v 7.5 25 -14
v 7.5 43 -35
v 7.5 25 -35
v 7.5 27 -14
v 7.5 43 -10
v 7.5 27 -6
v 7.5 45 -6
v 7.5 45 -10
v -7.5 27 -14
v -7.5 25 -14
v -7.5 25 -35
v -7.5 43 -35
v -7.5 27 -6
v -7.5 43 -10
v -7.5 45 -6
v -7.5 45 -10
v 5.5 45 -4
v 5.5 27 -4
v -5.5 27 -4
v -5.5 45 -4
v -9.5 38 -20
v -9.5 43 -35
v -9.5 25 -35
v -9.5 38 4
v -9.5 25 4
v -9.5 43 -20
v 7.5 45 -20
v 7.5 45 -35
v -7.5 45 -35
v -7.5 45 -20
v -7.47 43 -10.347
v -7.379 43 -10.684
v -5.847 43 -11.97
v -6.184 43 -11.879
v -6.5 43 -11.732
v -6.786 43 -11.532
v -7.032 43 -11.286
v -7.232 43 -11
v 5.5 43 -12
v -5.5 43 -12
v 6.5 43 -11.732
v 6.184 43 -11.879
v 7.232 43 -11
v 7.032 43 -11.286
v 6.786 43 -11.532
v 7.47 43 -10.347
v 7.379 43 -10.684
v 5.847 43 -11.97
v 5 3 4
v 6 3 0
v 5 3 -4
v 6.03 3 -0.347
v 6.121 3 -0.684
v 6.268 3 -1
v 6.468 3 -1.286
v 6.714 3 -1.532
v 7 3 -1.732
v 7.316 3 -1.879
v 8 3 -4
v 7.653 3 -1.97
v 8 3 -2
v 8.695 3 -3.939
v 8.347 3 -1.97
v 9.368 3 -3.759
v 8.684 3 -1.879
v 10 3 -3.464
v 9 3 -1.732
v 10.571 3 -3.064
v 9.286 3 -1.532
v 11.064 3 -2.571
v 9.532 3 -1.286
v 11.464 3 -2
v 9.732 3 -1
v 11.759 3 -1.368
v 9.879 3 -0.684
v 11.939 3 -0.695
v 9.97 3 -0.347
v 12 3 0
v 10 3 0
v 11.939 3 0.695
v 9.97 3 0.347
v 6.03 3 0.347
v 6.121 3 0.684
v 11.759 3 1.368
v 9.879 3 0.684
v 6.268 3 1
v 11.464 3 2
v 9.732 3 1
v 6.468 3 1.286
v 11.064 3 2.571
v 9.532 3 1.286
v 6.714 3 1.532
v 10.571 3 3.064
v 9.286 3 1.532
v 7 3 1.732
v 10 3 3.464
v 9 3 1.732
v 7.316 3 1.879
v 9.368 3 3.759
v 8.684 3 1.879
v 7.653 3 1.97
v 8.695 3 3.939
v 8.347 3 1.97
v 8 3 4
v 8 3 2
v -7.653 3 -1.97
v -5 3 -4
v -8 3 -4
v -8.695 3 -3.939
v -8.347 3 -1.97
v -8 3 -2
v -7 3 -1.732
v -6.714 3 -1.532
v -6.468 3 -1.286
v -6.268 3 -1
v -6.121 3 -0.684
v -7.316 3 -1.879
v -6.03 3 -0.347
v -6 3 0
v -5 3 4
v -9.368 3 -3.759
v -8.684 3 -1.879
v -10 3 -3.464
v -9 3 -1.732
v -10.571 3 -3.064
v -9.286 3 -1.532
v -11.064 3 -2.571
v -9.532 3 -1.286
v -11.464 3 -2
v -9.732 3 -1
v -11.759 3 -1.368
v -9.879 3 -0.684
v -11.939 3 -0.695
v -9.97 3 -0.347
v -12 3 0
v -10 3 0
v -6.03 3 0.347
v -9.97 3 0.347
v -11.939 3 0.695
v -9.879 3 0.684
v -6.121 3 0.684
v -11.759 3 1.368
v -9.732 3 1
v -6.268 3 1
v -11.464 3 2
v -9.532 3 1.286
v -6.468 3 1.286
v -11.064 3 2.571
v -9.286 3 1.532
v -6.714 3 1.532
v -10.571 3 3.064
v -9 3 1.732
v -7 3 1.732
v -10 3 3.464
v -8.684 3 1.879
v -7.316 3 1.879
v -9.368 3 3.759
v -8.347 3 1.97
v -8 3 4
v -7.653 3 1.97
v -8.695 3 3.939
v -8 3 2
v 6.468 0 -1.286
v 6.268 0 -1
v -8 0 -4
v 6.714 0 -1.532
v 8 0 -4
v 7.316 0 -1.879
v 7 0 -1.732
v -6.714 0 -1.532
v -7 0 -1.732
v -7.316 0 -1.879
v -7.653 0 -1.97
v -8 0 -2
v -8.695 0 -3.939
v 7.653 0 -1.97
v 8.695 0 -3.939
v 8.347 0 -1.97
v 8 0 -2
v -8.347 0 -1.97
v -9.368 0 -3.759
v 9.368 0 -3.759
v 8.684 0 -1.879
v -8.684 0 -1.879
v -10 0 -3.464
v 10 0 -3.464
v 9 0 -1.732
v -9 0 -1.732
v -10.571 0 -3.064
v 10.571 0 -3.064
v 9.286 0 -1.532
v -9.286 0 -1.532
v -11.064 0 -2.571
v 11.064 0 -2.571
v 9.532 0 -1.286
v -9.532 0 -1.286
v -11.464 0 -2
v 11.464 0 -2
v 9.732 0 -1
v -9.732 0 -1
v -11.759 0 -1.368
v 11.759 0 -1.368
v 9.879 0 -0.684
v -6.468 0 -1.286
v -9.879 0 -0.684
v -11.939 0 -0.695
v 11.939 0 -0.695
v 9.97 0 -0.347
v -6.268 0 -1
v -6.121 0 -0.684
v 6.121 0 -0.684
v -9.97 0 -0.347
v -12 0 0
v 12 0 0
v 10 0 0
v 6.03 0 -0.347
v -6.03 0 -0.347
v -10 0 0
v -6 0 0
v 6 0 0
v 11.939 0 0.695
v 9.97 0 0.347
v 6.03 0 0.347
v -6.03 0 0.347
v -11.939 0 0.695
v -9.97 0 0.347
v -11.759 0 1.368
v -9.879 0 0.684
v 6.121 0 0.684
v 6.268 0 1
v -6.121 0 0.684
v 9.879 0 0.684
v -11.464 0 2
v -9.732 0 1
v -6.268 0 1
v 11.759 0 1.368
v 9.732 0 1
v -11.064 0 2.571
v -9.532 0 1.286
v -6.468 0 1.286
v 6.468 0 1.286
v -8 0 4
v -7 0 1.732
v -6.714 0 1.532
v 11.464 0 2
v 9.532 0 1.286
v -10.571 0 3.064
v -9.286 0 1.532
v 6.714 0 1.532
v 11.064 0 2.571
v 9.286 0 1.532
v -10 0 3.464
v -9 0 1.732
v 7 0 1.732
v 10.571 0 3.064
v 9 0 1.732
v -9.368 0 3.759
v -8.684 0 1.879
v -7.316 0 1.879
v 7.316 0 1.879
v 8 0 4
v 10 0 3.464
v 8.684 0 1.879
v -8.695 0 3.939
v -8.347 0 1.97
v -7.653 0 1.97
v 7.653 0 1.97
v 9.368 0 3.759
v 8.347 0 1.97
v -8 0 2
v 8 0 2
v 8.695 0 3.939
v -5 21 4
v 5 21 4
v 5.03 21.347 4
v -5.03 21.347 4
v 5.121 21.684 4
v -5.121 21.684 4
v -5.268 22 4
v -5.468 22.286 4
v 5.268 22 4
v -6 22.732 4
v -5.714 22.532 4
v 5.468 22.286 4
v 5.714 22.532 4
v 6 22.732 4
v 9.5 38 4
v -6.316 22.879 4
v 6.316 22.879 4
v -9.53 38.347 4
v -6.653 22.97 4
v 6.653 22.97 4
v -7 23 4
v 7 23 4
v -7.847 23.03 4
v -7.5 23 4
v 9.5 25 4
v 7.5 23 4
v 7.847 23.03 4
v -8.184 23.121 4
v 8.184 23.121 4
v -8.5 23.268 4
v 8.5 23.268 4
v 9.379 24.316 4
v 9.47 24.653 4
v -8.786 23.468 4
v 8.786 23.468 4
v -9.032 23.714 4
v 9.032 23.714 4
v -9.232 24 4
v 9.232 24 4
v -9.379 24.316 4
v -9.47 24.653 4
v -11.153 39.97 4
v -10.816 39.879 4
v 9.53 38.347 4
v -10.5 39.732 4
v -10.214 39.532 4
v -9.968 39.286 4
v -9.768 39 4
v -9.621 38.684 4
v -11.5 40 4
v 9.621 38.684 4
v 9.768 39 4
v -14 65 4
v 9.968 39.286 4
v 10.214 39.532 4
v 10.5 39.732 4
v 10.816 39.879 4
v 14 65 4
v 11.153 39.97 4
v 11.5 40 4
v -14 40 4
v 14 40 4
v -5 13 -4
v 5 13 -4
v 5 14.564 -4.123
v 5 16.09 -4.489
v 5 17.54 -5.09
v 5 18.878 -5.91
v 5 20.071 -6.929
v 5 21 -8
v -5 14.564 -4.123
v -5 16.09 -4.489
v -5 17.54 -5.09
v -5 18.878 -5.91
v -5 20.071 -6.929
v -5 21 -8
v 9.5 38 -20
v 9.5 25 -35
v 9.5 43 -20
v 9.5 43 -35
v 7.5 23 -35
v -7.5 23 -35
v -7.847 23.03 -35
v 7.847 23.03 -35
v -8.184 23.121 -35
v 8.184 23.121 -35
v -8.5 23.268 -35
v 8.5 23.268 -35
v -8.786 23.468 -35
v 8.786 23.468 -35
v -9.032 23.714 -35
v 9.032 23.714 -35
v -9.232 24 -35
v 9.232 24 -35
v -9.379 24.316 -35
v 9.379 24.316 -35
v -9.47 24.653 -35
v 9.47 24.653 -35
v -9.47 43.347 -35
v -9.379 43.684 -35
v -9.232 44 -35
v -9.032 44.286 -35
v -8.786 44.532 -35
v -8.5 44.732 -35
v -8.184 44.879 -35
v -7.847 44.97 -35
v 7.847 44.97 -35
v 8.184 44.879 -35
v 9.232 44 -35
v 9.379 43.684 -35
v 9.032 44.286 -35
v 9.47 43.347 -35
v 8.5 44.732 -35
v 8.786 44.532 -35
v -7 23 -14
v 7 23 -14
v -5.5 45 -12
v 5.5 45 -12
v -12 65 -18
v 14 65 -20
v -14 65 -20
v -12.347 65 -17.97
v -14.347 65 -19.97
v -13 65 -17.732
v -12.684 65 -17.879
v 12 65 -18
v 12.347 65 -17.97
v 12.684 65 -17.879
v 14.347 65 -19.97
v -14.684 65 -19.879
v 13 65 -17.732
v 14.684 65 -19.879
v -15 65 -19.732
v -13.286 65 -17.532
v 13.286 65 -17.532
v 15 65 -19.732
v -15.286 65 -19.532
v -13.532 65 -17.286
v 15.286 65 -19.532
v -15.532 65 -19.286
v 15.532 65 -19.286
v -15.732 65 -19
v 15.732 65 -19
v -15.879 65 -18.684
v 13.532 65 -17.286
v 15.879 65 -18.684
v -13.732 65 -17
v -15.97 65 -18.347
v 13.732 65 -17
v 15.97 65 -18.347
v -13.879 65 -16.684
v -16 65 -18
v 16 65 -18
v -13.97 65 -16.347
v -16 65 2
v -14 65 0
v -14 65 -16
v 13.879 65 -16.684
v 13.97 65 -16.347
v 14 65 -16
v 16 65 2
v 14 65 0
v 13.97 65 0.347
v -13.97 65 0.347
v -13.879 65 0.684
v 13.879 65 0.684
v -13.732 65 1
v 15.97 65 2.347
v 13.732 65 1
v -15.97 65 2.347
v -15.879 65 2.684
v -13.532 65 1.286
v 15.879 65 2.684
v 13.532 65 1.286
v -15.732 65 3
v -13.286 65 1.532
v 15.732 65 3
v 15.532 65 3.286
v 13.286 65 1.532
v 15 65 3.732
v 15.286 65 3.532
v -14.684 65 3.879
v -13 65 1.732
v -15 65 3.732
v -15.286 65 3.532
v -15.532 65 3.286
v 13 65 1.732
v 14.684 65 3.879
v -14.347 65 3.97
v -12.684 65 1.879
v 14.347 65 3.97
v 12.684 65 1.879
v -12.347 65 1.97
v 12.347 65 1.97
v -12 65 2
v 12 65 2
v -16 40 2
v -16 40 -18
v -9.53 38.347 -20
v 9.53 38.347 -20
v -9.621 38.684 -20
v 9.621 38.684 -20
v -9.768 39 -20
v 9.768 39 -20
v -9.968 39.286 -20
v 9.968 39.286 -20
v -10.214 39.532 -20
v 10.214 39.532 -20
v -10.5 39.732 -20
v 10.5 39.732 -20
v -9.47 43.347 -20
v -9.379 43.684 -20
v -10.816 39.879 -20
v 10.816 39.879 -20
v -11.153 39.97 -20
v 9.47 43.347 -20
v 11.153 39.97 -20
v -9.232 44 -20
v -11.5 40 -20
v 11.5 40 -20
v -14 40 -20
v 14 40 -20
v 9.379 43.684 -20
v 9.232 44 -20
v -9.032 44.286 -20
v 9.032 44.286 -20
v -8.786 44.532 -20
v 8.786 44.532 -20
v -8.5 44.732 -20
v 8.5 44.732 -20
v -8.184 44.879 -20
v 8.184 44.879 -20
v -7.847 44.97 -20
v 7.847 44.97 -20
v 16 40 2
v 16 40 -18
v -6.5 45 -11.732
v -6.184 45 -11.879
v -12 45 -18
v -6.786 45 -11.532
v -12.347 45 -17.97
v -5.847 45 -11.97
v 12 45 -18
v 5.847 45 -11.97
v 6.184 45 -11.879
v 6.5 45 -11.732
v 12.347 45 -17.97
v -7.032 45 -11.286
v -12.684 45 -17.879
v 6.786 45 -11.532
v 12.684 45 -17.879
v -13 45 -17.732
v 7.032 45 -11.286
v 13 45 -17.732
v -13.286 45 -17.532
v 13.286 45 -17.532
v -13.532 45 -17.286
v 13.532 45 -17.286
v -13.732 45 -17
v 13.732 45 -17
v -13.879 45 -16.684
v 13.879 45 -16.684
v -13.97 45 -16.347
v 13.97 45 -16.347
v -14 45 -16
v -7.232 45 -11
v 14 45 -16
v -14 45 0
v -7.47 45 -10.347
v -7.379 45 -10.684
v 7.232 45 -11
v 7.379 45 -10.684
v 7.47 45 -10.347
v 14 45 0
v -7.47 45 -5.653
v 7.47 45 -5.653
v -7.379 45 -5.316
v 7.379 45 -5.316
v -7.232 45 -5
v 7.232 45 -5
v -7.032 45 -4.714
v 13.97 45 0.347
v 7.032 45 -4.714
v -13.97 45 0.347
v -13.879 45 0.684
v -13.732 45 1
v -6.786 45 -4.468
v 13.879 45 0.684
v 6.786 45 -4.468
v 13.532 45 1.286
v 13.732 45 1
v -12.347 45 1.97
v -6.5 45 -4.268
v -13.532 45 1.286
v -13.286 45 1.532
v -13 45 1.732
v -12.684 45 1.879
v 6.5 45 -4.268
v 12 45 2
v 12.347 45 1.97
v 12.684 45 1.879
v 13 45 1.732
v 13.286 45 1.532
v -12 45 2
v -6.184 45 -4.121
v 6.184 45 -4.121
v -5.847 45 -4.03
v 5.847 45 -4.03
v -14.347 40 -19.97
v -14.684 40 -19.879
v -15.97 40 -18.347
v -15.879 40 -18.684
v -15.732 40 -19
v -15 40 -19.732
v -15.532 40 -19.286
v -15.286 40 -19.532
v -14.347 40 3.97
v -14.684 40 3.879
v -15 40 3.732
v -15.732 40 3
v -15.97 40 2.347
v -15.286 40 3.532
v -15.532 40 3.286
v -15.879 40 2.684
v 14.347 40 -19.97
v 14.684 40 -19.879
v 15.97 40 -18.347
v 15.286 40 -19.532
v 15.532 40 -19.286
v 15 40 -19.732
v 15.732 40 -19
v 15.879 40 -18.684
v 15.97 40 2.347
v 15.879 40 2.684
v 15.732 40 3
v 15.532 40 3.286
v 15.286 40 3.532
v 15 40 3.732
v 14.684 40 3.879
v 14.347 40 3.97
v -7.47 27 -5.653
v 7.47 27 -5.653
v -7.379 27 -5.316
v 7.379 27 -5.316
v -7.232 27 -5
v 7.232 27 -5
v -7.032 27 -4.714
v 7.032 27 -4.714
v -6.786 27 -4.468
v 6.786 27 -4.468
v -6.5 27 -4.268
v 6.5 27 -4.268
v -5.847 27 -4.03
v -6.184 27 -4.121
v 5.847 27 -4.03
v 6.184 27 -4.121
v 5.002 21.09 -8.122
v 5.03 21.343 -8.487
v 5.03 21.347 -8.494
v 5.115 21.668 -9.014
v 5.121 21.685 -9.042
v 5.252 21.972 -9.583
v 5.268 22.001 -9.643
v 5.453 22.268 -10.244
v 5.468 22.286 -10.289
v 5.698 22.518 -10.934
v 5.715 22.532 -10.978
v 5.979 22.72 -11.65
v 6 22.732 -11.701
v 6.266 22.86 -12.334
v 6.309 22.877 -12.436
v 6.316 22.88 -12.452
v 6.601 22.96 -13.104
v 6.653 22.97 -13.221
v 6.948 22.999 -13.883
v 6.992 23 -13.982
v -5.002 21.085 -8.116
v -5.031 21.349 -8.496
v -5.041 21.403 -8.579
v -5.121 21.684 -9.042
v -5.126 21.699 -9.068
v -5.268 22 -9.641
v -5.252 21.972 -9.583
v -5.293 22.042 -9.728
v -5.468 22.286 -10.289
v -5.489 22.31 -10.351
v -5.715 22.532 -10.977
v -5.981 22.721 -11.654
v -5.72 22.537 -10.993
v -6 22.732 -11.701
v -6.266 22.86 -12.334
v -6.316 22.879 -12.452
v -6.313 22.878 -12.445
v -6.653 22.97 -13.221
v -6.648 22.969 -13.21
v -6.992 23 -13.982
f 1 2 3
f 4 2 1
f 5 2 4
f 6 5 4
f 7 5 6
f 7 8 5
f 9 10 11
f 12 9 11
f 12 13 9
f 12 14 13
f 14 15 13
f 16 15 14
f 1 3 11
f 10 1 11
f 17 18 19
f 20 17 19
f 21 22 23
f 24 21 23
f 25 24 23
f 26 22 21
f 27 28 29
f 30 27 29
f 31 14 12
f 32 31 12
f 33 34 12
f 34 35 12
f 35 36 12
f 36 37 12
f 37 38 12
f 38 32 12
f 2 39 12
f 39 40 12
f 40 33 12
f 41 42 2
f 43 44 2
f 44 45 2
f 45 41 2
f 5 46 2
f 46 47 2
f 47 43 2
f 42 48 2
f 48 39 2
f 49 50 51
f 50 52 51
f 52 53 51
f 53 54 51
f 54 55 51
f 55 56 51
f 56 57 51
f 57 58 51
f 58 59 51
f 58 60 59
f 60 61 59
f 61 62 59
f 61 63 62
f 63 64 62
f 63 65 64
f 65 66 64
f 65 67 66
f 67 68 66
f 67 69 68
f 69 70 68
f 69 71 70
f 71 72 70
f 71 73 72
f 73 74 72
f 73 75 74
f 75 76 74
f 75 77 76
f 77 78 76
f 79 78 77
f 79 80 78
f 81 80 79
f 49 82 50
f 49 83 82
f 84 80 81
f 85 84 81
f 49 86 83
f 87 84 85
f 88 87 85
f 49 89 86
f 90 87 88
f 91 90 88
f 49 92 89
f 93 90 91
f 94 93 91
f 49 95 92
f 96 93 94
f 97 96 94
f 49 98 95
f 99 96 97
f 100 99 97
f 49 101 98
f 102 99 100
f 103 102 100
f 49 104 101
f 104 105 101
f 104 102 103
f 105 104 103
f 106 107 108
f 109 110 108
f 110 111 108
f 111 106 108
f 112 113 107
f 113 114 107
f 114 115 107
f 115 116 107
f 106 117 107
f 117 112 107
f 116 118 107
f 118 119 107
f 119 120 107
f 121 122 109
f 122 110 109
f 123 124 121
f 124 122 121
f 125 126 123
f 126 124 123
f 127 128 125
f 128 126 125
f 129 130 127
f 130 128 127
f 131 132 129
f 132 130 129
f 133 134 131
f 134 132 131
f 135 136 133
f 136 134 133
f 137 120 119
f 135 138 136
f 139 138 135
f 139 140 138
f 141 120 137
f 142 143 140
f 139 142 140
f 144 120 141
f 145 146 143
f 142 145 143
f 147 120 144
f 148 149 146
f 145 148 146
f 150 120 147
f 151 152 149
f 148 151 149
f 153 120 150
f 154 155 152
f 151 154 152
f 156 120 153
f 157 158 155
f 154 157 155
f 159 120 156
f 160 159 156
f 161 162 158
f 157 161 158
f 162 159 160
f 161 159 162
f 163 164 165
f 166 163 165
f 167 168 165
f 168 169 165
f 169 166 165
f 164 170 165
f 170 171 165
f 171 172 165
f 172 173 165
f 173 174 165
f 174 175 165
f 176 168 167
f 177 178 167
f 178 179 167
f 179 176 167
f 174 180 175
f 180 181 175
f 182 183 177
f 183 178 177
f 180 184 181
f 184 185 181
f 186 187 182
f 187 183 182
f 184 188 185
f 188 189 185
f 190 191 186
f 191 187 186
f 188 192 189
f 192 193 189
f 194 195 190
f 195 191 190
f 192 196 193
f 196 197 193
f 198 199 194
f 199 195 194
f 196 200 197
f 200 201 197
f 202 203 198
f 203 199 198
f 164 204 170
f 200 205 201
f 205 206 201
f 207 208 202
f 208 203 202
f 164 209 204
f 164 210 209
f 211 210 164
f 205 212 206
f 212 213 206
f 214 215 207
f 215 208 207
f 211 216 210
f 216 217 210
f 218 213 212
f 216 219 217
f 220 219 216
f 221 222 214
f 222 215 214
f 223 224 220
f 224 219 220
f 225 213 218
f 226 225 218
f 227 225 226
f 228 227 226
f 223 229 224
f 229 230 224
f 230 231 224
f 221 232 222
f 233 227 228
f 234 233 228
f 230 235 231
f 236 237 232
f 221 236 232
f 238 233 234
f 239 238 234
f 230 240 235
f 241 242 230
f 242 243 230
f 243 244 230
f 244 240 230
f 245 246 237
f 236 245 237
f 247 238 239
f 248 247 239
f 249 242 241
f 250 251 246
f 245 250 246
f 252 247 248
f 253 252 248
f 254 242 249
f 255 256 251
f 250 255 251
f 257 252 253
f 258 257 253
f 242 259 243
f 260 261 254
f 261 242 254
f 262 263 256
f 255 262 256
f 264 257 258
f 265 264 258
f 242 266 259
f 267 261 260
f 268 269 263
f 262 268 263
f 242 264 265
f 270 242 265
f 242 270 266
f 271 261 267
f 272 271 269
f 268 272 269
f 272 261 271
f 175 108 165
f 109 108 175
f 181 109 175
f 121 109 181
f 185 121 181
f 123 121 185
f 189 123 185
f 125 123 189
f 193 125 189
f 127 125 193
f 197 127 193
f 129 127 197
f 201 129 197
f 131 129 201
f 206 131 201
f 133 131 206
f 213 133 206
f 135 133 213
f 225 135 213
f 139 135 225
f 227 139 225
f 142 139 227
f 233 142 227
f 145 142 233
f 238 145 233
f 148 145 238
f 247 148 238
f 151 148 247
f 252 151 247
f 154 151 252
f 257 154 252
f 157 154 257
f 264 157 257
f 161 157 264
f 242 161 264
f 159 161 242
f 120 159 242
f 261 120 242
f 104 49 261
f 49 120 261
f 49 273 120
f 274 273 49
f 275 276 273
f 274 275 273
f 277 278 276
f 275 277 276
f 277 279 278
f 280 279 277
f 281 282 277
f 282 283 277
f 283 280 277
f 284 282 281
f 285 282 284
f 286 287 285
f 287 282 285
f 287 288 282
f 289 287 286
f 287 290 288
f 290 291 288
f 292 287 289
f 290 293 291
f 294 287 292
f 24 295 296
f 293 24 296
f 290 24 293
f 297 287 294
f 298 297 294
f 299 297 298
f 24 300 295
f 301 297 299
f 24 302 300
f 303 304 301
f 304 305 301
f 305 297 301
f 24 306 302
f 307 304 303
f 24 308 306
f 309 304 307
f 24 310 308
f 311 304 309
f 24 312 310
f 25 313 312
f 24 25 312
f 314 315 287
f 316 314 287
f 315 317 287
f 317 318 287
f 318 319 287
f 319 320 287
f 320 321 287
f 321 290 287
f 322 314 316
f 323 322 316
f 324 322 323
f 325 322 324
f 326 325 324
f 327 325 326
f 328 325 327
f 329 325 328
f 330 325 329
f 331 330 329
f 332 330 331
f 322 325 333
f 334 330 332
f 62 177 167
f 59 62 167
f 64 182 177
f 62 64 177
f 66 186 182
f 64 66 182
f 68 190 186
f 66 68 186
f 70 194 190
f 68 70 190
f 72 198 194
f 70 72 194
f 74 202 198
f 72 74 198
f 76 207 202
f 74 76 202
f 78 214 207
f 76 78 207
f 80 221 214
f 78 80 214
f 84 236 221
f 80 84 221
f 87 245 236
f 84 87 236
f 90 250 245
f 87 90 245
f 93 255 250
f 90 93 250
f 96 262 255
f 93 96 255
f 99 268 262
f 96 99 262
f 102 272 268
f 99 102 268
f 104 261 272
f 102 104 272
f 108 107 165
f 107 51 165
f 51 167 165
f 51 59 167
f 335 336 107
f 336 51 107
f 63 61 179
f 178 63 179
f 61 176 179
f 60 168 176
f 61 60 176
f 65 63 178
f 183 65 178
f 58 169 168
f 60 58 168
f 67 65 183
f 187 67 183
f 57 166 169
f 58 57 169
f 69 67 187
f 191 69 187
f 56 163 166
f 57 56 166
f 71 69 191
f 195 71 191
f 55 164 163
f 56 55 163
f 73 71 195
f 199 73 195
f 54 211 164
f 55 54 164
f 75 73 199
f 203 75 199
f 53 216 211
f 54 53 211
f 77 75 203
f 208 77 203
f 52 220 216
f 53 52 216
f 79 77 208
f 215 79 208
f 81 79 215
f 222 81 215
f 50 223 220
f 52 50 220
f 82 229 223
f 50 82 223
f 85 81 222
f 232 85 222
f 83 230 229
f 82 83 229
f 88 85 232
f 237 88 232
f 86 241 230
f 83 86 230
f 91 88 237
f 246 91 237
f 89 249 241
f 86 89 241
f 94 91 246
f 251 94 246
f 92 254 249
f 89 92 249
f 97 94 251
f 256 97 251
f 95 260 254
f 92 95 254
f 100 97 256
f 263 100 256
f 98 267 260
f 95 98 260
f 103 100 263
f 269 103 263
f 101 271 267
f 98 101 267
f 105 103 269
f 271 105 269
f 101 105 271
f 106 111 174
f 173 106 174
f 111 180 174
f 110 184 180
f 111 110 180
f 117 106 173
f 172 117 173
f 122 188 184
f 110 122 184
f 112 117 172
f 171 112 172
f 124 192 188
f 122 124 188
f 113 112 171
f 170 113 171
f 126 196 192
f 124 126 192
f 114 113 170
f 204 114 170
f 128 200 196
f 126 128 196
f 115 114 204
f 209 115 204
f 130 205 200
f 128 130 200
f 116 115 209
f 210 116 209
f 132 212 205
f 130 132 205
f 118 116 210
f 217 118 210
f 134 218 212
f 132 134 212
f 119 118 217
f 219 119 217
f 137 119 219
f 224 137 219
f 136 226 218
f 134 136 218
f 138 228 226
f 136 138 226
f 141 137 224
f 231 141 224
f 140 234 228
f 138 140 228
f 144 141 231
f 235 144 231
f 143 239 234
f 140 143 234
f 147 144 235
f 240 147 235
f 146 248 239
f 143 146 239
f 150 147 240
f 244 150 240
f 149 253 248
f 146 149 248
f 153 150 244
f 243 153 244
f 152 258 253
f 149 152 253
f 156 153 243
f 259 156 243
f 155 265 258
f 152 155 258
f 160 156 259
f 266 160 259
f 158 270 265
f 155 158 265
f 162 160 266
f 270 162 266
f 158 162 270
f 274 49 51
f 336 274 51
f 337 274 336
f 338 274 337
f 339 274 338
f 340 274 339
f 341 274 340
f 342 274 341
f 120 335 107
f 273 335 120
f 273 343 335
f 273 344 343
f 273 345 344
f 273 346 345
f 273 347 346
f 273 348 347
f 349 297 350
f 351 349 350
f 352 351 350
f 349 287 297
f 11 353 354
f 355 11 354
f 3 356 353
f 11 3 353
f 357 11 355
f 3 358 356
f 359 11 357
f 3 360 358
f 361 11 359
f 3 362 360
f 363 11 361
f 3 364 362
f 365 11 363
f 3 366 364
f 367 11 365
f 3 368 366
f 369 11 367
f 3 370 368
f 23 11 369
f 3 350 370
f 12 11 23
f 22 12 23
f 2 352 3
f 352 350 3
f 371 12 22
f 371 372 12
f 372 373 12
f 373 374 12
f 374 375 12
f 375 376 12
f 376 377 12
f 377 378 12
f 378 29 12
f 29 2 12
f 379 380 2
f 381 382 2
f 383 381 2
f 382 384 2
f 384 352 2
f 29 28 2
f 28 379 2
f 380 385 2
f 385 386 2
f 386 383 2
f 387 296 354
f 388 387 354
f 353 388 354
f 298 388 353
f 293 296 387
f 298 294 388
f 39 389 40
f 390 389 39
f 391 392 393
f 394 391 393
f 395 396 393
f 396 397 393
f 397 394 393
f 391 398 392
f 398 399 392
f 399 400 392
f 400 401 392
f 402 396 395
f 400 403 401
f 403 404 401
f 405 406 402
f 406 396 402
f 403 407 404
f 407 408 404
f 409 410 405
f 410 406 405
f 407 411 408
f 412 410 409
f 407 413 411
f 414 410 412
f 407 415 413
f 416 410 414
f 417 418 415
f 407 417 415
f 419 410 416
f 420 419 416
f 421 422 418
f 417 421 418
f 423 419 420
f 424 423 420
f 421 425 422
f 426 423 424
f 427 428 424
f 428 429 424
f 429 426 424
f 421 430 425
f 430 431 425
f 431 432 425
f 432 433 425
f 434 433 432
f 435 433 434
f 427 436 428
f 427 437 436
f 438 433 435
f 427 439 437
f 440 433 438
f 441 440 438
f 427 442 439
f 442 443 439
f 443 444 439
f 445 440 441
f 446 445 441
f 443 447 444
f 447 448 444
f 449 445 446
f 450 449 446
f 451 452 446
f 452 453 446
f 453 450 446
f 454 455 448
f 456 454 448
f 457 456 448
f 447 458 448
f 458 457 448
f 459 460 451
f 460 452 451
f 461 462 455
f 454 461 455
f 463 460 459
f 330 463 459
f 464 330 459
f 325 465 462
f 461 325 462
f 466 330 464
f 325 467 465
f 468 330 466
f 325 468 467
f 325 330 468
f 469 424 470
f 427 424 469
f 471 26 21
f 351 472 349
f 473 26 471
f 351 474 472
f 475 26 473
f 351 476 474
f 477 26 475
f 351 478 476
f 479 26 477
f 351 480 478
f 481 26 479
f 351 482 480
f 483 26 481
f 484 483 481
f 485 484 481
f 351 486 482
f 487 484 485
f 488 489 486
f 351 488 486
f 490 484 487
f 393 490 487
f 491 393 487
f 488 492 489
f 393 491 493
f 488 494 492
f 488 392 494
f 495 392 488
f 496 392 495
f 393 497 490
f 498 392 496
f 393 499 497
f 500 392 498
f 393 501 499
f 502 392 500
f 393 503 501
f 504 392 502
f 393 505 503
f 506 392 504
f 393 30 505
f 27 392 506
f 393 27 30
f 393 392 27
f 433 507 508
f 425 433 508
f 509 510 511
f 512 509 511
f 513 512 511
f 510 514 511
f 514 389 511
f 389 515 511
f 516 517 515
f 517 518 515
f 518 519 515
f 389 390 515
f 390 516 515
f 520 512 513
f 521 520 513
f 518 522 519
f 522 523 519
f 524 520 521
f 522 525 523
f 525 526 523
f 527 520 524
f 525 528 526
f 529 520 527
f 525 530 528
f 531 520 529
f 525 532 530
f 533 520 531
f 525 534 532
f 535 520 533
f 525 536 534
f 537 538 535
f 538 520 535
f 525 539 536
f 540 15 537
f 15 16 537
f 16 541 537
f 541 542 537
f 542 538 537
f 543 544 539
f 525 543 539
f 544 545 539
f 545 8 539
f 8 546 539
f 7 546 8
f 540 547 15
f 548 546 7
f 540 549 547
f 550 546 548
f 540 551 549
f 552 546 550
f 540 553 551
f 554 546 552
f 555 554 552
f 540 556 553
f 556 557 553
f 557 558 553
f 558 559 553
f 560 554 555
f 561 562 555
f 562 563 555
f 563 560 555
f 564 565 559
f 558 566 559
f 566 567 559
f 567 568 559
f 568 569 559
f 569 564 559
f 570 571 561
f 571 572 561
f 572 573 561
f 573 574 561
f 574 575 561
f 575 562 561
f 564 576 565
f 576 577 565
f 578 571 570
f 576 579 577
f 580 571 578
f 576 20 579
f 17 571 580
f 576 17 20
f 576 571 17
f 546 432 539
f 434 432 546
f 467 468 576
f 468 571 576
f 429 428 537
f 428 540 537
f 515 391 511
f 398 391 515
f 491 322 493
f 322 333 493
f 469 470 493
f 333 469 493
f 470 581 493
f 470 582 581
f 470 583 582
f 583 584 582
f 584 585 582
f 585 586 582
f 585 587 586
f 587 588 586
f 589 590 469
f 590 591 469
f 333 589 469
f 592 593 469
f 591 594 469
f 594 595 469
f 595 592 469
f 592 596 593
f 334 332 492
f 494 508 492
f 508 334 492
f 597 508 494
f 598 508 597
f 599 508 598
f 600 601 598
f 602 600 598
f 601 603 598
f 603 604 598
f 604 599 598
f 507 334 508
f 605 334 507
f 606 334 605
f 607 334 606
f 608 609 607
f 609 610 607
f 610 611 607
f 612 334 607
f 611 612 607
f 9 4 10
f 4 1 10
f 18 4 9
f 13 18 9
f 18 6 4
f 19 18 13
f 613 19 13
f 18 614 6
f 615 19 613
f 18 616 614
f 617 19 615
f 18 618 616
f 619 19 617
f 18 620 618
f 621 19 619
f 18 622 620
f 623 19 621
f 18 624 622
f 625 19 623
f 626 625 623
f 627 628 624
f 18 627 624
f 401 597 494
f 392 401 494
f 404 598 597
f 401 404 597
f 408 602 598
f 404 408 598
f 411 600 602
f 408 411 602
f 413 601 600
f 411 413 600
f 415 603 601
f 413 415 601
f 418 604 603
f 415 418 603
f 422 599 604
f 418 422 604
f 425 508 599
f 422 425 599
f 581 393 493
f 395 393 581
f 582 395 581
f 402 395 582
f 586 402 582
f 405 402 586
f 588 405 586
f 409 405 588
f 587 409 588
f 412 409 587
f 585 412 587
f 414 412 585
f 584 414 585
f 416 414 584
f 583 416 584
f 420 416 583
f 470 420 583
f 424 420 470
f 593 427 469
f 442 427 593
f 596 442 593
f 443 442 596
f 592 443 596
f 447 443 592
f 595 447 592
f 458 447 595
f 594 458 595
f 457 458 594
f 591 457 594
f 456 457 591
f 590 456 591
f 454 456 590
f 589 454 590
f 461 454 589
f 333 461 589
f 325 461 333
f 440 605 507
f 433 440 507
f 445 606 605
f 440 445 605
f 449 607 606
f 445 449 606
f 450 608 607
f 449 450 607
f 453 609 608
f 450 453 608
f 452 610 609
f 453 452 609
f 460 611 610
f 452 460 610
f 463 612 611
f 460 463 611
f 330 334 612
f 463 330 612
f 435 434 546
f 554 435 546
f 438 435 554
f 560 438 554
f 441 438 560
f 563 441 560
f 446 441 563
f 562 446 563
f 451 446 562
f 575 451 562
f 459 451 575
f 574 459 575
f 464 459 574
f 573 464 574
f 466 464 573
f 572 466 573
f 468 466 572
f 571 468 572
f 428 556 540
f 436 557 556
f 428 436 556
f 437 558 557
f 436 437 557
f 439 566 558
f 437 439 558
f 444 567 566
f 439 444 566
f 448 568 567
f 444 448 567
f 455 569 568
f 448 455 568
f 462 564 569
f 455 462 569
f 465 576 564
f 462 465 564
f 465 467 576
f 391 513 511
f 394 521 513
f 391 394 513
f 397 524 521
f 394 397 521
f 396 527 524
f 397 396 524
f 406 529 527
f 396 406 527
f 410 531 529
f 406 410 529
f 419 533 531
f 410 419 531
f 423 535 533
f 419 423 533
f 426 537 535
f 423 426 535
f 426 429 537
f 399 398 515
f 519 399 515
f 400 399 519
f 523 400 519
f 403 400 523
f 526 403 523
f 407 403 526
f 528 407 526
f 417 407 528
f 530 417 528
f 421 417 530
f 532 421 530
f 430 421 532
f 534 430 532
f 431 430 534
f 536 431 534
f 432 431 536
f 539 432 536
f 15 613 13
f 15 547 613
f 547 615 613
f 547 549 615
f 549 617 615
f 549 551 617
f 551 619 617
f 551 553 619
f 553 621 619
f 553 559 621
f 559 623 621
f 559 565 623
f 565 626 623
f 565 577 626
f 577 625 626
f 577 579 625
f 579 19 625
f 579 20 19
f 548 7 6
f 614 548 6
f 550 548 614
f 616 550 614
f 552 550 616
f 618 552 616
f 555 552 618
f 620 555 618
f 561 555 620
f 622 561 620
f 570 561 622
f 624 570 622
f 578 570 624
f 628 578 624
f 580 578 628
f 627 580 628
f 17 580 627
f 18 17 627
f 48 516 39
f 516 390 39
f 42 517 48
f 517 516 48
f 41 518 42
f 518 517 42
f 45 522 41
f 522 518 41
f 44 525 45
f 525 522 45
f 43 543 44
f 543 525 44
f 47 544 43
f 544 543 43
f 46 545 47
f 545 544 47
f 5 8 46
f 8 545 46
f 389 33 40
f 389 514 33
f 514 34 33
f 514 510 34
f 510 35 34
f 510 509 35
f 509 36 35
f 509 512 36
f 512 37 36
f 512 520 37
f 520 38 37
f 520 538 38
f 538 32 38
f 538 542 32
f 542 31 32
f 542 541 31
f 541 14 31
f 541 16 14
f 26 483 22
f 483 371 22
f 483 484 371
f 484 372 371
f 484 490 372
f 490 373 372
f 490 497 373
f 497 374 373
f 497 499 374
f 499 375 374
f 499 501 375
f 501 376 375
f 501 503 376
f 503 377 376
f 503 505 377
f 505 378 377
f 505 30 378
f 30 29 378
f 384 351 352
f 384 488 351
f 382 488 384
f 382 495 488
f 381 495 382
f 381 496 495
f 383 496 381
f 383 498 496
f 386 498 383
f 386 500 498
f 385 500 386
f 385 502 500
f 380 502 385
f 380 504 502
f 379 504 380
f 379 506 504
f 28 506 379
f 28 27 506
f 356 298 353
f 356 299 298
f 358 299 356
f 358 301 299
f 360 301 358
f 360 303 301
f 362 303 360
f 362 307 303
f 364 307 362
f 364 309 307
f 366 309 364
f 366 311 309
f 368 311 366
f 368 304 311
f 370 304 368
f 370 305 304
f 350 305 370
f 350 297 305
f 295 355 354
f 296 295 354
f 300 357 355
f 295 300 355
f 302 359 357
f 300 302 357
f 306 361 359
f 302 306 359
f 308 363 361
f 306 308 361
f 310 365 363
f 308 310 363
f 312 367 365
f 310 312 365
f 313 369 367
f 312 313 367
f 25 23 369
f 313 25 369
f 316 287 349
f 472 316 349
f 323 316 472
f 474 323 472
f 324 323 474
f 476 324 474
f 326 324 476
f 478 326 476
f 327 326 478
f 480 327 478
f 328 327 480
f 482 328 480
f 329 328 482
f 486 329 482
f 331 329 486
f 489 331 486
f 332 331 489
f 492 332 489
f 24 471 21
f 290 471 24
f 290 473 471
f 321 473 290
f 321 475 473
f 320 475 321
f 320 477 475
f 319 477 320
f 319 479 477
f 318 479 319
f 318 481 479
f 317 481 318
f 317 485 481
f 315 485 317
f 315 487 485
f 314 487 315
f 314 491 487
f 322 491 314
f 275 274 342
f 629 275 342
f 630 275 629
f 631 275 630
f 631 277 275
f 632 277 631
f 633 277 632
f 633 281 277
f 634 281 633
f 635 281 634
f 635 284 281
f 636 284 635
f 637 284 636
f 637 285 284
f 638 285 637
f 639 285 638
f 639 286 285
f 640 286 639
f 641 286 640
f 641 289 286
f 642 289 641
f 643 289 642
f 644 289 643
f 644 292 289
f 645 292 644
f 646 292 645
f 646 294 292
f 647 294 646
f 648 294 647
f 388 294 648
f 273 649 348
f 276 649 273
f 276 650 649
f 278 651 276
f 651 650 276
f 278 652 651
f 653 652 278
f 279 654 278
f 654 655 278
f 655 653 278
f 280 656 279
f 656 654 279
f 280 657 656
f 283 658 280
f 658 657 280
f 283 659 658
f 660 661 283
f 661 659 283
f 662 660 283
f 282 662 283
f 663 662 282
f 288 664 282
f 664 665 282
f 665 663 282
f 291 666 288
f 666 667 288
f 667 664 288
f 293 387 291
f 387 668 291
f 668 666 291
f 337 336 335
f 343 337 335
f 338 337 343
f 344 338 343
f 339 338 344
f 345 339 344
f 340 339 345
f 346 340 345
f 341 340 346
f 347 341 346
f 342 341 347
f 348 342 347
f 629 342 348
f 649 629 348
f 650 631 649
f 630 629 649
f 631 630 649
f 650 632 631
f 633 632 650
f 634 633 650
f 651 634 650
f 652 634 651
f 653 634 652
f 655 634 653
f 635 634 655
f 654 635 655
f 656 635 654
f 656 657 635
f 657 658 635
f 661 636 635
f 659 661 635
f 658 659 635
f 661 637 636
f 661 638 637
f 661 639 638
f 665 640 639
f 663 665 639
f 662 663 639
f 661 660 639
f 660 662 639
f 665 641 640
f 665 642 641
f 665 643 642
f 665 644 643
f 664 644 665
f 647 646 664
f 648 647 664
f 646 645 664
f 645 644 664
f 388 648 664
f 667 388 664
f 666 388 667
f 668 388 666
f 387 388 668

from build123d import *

# Parameters (mm, degrees)
SKETCH_1_R          = 2
EXTRUDE_1_DEPTH     = 3
SKETCH_2_W          = 10
SKETCH_2_H          = 8
EXTRUDE_2_DEPTH     = 20
SKETCH_3_W          = 19
SKETCH_3_H          = 39
EXTRUDE_3_DEPTH     = 22
SKETCH_4_W          = 15
SKETCH_4_H          = 18
CUT_EXTRUDE_1_DEPTH = 31
SKETCH_5_W          = 15
SKETCH_5_H          = 8
CUT_EXTRUDE_2_DEPTH = 5
SKETCH_6_W          = 32
SKETCH_6_H          = 24
EXTRUDE_5_DEPTH     = 20
SKETCH_7_W          = 28
SKETCH_7_H          = 20
CUT_EXTRUDE_3_DEPTH = 20
SKETCH_8_W          = 6.5
SKETCH_8_H          = 24
EXTRUDE_6_DEPTH     = 5
SKETCH_9_W          = 15
SKETCH_9_H          = 10
EXTRUDE_7_DEPTH     = 2
FILLET_1_R          = 2
FILLET_2_R          = 2
FILLET_3_R          = 2
FILLET_4_R          = 2
FILLET_5_R          = 2
FILLET_6_R          = 2
FILLET_7_R          = 2
FILLET_8_R          = 2
FILLET_9_R          = 2
FILLET_10_R         = 2
FILLET_11_R         = 2
FILLET_12_R         = 2
FILLET_13_R         = 2
FILLET_14_R         = 2
FILLET_15_R         = 2
FILLET_16_R         = 2
FILLET_17_R         = 2
FILLET_18_R         = 2
FILLET_19_R         = 2
FILLET_20_R         = 2
FILLET_START        = -5
FILLET_21_DEPTH     = 10
FILLET_START_2      = -14
FILLET_21_2_DEPTH   = 10
FILLET_START_3      = -8
FILLET_21_3_DEPTH   = 16


with BuildPart() as part:
    # 草图1 → 凸台-拉伸1 (new body)
    with BuildSketch(Plane(origin=(0, 0, 0), x_dir=(1, 0, 0), z_dir=(0, 1, 0))):
        with BuildLine():
            Line((-8, 4), (8, 4))
            ThreePointArc((8, 4), (12, 0), (8, -4))
            Line((8, -4), (-8, -4))
            ThreePointArc((-8, -4), (-12, 0), (-8, 4))
        make_face()
        with Locations(Location((8, 0, 0), (0, 0, 270))):
            Circle(SKETCH_1_R, mode=Mode.SUBTRACT)
        with Locations(Location((-8, 0, 0), (0, 0, 270))):
            Circle(SKETCH_1_R, mode=Mode.SUBTRACT)
    extrude(amount=EXTRUDE_1_DEPTH)

    # 草图2 → 凸台-拉伸2 (add)
    with BuildSketch(Plane(origin=(0, 3, 0), x_dir=(1, 0, 0), z_dir=(0, 1, 0))):
        Rectangle(SKETCH_2_W, SKETCH_2_H)
    extrude(amount=EXTRUDE_2_DEPTH)

    # 草图3 → 凸台-拉伸3 (add)
    with BuildSketch(Plane(origin=(0, 23, 0), x_dir=(1, 0, 0), z_dir=(0, 1, 0))):
        with Locations((0, 15.5)):
            Rectangle(SKETCH_3_W, SKETCH_3_H)
    extrude(amount=EXTRUDE_3_DEPTH)

    # 草图4 → 切除-拉伸1 (cut)
    with BuildSketch(Plane(origin=(0, 0, -35), x_dir=(-1, 0, 0), z_dir=(0, 0, -1))):
        with Locations((0, 34)):
            Rectangle(SKETCH_4_W, SKETCH_4_H)
    extrude(amount=-CUT_EXTRUDE_1_DEPTH, mode=Mode.SUBTRACT)

    # 草图5 → 切除-拉伸2 (cut)
    with BuildSketch(Plane(origin=(0, 45, 0), x_dir=(1, 0, 0), z_dir=(0, 1, 0))):
        with Locations((0, 8)):
            Rectangle(SKETCH_5_W, SKETCH_5_H)
    extrude(amount=-CUT_EXTRUDE_2_DEPTH, mode=Mode.SUBTRACT)

    # 草图6 → 凸台-拉伸5 (add)
    with BuildSketch(Plane(origin=(0, 45, 0), x_dir=(1, 0, 0), z_dir=(0, 1, 0))):
        with Locations((0, 8)):
            Rectangle(SKETCH_6_W, SKETCH_6_H)
    extrude(amount=EXTRUDE_5_DEPTH)

    # 草图7 → 切除-拉伸3 (cut)
    with BuildSketch(Plane(origin=(0, 65, 0), x_dir=(1, 0, 0), z_dir=(0, 1, 0))):
        with Locations((0, 8)):
            Rectangle(SKETCH_7_W, SKETCH_7_H)
    extrude(amount=-CUT_EXTRUDE_3_DEPTH, mode=Mode.SUBTRACT)

    # 草图8 → 凸台-拉伸6 (add)
    with BuildSketch(Plane(origin=(0, 45, 0), x_dir=(1, 0, 0), z_dir=(0, 1, 0))):
        Polygon((-16, 20), (-16, -4), (-9.5, -4), (-9.5, -2), (-9.5, 18), (-9.5, 20), align=None)
        with Locations((12.75, 8)):
            Rectangle(SKETCH_8_W, SKETCH_8_H)
    extrude(amount=-EXTRUDE_6_DEPTH)

    # 草图9 → 凸台-拉伸7 (add)
    with BuildSketch(Plane(origin=(0, 25, 0), x_dir=(1, 0, 0), z_dir=(0, 1, 0))):
        with Locations((0, 9)):
            Rectangle(SKETCH_9_W, SKETCH_9_H)
    extrude(amount=EXTRUDE_7_DEPTH)

    # 圆角1
    fillet_1_edges = [part.edges().sort_by_distance(p)[0] for p in [
        (16, 52.5, -20),
    ]]
    fillet(fillet_1_edges, radius=FILLET_1_R)

    # 圆角2
    fillet_2_edges = [part.edges().sort_by_distance(p)[0] for p in [
        (-16, 52.5, -20),
    ]]
    fillet(fillet_2_edges, radius=FILLET_2_R)

    # 圆角3
    fillet_3_edges = [part.edges().sort_by_distance(p)[0] for p in [
        (-16, 52.5, 4),
    ]]
    fillet(fillet_3_edges, radius=FILLET_3_R)

    # 圆角4
    fillet_4_edges = [part.edges().sort_by_distance(p)[0] for p in [
        (16, 52.5, 4),
    ]]
    fillet(fillet_4_edges, radius=FILLET_4_R)

    # 圆角5
    fillet_5_edges = [part.edges().sort_by_distance(p)[0] for p in [
        (14, 55, 2),
    ]]
    fillet(fillet_5_edges, radius=FILLET_5_R)

    # 圆角6
    fillet_6_edges = [part.edges().sort_by_distance(p)[0] for p in [
        (-14, 55, 2),
    ]]
    fillet(fillet_6_edges, radius=FILLET_6_R)

    # 圆角7
    fillet_7_edges = [part.edges().sort_by_distance(p)[0] for p in [
        (-14, 55, -18),
    ]]
    fillet(fillet_7_edges, radius=FILLET_7_R)

    # 圆角8
    fillet_8_edges = [part.edges().sort_by_distance(p)[0] for p in [
        (14, 55, -18),
    ]]
    fillet(fillet_8_edges, radius=FILLET_8_R)

    # 圆角9
    fillet_9_edges = [part.edges().sort_by_distance(p)[0] for p in [
        (-7.5, 36, -4),
    ]]
    fillet(fillet_9_edges, radius=FILLET_9_R)

    # 圆角10
    fillet_10_edges = [part.edges().sort_by_distance(p)[0] for p in [
        (7.5, 36, -4),
    ]]
    fillet(fillet_10_edges, radius=FILLET_10_R)

    # 圆角11
    fillet_11_edges = [part.edges().sort_by_distance(p)[0] for p in [
        (7.5, 44, -12),
    ]]
    fillet(fillet_11_edges, radius=FILLET_11_R)

    # 圆角12
    fillet_12_edges = [part.edges().sort_by_distance(p)[0] for p in [
        (-7.5, 44, -12),
    ]]
    fillet(fillet_12_edges, radius=FILLET_12_R)

    # 圆角13
    fillet_13_edges = [part.edges().sort_by_distance(p)[0] for p in [
        (-9.5, 45, -27.5),
    ]]
    fillet(fillet_13_edges, radius=FILLET_13_R)

    # 圆角14
    fillet_14_edges = [part.edges().sort_by_distance(p)[0] for p in [
        (9.5, 45, -27.5),
    ]]
    fillet(fillet_14_edges, radius=FILLET_14_R)

    # 圆角15
    fillet_15_edges = [part.edges().sort_by_distance(p)[0] for p in [
        (9.5, 23, -15.5),
    ]]
    fillet(fillet_15_edges, radius=FILLET_15_R)

    # 圆角16
    fillet_16_edges = [part.edges().sort_by_distance(p)[0] for p in [
        (-9.5, 23, -15.5),
    ]]
    fillet(fillet_16_edges, radius=FILLET_16_R)

    # 圆角17
    fillet_17_edges = [part.edges().sort_by_distance(p)[0] for p in [
        (9.5, 40, -8),
    ]]
    fillet(fillet_17_edges, radius=FILLET_17_R)

    # 圆角18
    fillet_18_edges = [part.edges().sort_by_distance(p)[0] for p in [
        (-9.5, 40, -8),
    ]]
    fillet(fillet_18_edges, radius=FILLET_18_R)

    # 圆角19
    fillet_19_edges = [part.edges().sort_by_distance(p)[0] for p in [
        (5, 23, 0),
    ]]
    fillet(fillet_19_edges, radius=FILLET_19_R)

    # 圆角20
    fillet_20_edges = [part.edges().sort_by_distance(p)[0] for p in [
        (-5, 23, 0),
    ]]
    fillet(fillet_20_edges, radius=FILLET_20_R)

    # 圆角21: read off the stored shape, not the designer's step
    # 圆角21 outline → 圆角21 (add)
    with BuildSketch(Plane.YZ.offset(FILLET_START)):
        with BuildLine():
            Line((23, -4), (13, -4))
            ThreePointArc((13, -4), (20.071068, -6.928932), (23, -14))
            Line((23, -14), (23, -4))
        make_face()
    extrude(amount=FILLET_21_DEPTH)

    # Fillet 21 2 outline → Fillet 21 2 (add)
    with BuildSketch(Plane.XY.offset(FILLET_START_2)):
        with BuildLine():
            Line((5, 23), (5, 21))
            ThreePointArc((5, 21), (5.585786, 22.414214), (7, 23))
            Line((7, 23), (5, 23))
        make_face()
        with BuildLine():
            Line((-5, 21), (-5, 23))
            Line((-5, 23), (-7, 23))
            ThreePointArc((-7, 23), (-5.585786, 22.414214), (-5, 21))
        make_face()
    extrude(amount=FILLET_21_2_DEPTH)

    # Fillet 21 3 outline → Fillet 21 3 (cut)
    with BuildSketch(Plane.YZ.offset(FILLET_START_3)):
        with BuildLine():
            Line((21, -14), (23, -14))
            ThreePointArc((23, -14), (22.486833, -10.837722), (21, -8))
            Line((21, -8), (21, -14))
        make_face()
    extrude(amount=FILLET_21_3_DEPTH, mode=Mode.SUBTRACT)


solid = part.part
